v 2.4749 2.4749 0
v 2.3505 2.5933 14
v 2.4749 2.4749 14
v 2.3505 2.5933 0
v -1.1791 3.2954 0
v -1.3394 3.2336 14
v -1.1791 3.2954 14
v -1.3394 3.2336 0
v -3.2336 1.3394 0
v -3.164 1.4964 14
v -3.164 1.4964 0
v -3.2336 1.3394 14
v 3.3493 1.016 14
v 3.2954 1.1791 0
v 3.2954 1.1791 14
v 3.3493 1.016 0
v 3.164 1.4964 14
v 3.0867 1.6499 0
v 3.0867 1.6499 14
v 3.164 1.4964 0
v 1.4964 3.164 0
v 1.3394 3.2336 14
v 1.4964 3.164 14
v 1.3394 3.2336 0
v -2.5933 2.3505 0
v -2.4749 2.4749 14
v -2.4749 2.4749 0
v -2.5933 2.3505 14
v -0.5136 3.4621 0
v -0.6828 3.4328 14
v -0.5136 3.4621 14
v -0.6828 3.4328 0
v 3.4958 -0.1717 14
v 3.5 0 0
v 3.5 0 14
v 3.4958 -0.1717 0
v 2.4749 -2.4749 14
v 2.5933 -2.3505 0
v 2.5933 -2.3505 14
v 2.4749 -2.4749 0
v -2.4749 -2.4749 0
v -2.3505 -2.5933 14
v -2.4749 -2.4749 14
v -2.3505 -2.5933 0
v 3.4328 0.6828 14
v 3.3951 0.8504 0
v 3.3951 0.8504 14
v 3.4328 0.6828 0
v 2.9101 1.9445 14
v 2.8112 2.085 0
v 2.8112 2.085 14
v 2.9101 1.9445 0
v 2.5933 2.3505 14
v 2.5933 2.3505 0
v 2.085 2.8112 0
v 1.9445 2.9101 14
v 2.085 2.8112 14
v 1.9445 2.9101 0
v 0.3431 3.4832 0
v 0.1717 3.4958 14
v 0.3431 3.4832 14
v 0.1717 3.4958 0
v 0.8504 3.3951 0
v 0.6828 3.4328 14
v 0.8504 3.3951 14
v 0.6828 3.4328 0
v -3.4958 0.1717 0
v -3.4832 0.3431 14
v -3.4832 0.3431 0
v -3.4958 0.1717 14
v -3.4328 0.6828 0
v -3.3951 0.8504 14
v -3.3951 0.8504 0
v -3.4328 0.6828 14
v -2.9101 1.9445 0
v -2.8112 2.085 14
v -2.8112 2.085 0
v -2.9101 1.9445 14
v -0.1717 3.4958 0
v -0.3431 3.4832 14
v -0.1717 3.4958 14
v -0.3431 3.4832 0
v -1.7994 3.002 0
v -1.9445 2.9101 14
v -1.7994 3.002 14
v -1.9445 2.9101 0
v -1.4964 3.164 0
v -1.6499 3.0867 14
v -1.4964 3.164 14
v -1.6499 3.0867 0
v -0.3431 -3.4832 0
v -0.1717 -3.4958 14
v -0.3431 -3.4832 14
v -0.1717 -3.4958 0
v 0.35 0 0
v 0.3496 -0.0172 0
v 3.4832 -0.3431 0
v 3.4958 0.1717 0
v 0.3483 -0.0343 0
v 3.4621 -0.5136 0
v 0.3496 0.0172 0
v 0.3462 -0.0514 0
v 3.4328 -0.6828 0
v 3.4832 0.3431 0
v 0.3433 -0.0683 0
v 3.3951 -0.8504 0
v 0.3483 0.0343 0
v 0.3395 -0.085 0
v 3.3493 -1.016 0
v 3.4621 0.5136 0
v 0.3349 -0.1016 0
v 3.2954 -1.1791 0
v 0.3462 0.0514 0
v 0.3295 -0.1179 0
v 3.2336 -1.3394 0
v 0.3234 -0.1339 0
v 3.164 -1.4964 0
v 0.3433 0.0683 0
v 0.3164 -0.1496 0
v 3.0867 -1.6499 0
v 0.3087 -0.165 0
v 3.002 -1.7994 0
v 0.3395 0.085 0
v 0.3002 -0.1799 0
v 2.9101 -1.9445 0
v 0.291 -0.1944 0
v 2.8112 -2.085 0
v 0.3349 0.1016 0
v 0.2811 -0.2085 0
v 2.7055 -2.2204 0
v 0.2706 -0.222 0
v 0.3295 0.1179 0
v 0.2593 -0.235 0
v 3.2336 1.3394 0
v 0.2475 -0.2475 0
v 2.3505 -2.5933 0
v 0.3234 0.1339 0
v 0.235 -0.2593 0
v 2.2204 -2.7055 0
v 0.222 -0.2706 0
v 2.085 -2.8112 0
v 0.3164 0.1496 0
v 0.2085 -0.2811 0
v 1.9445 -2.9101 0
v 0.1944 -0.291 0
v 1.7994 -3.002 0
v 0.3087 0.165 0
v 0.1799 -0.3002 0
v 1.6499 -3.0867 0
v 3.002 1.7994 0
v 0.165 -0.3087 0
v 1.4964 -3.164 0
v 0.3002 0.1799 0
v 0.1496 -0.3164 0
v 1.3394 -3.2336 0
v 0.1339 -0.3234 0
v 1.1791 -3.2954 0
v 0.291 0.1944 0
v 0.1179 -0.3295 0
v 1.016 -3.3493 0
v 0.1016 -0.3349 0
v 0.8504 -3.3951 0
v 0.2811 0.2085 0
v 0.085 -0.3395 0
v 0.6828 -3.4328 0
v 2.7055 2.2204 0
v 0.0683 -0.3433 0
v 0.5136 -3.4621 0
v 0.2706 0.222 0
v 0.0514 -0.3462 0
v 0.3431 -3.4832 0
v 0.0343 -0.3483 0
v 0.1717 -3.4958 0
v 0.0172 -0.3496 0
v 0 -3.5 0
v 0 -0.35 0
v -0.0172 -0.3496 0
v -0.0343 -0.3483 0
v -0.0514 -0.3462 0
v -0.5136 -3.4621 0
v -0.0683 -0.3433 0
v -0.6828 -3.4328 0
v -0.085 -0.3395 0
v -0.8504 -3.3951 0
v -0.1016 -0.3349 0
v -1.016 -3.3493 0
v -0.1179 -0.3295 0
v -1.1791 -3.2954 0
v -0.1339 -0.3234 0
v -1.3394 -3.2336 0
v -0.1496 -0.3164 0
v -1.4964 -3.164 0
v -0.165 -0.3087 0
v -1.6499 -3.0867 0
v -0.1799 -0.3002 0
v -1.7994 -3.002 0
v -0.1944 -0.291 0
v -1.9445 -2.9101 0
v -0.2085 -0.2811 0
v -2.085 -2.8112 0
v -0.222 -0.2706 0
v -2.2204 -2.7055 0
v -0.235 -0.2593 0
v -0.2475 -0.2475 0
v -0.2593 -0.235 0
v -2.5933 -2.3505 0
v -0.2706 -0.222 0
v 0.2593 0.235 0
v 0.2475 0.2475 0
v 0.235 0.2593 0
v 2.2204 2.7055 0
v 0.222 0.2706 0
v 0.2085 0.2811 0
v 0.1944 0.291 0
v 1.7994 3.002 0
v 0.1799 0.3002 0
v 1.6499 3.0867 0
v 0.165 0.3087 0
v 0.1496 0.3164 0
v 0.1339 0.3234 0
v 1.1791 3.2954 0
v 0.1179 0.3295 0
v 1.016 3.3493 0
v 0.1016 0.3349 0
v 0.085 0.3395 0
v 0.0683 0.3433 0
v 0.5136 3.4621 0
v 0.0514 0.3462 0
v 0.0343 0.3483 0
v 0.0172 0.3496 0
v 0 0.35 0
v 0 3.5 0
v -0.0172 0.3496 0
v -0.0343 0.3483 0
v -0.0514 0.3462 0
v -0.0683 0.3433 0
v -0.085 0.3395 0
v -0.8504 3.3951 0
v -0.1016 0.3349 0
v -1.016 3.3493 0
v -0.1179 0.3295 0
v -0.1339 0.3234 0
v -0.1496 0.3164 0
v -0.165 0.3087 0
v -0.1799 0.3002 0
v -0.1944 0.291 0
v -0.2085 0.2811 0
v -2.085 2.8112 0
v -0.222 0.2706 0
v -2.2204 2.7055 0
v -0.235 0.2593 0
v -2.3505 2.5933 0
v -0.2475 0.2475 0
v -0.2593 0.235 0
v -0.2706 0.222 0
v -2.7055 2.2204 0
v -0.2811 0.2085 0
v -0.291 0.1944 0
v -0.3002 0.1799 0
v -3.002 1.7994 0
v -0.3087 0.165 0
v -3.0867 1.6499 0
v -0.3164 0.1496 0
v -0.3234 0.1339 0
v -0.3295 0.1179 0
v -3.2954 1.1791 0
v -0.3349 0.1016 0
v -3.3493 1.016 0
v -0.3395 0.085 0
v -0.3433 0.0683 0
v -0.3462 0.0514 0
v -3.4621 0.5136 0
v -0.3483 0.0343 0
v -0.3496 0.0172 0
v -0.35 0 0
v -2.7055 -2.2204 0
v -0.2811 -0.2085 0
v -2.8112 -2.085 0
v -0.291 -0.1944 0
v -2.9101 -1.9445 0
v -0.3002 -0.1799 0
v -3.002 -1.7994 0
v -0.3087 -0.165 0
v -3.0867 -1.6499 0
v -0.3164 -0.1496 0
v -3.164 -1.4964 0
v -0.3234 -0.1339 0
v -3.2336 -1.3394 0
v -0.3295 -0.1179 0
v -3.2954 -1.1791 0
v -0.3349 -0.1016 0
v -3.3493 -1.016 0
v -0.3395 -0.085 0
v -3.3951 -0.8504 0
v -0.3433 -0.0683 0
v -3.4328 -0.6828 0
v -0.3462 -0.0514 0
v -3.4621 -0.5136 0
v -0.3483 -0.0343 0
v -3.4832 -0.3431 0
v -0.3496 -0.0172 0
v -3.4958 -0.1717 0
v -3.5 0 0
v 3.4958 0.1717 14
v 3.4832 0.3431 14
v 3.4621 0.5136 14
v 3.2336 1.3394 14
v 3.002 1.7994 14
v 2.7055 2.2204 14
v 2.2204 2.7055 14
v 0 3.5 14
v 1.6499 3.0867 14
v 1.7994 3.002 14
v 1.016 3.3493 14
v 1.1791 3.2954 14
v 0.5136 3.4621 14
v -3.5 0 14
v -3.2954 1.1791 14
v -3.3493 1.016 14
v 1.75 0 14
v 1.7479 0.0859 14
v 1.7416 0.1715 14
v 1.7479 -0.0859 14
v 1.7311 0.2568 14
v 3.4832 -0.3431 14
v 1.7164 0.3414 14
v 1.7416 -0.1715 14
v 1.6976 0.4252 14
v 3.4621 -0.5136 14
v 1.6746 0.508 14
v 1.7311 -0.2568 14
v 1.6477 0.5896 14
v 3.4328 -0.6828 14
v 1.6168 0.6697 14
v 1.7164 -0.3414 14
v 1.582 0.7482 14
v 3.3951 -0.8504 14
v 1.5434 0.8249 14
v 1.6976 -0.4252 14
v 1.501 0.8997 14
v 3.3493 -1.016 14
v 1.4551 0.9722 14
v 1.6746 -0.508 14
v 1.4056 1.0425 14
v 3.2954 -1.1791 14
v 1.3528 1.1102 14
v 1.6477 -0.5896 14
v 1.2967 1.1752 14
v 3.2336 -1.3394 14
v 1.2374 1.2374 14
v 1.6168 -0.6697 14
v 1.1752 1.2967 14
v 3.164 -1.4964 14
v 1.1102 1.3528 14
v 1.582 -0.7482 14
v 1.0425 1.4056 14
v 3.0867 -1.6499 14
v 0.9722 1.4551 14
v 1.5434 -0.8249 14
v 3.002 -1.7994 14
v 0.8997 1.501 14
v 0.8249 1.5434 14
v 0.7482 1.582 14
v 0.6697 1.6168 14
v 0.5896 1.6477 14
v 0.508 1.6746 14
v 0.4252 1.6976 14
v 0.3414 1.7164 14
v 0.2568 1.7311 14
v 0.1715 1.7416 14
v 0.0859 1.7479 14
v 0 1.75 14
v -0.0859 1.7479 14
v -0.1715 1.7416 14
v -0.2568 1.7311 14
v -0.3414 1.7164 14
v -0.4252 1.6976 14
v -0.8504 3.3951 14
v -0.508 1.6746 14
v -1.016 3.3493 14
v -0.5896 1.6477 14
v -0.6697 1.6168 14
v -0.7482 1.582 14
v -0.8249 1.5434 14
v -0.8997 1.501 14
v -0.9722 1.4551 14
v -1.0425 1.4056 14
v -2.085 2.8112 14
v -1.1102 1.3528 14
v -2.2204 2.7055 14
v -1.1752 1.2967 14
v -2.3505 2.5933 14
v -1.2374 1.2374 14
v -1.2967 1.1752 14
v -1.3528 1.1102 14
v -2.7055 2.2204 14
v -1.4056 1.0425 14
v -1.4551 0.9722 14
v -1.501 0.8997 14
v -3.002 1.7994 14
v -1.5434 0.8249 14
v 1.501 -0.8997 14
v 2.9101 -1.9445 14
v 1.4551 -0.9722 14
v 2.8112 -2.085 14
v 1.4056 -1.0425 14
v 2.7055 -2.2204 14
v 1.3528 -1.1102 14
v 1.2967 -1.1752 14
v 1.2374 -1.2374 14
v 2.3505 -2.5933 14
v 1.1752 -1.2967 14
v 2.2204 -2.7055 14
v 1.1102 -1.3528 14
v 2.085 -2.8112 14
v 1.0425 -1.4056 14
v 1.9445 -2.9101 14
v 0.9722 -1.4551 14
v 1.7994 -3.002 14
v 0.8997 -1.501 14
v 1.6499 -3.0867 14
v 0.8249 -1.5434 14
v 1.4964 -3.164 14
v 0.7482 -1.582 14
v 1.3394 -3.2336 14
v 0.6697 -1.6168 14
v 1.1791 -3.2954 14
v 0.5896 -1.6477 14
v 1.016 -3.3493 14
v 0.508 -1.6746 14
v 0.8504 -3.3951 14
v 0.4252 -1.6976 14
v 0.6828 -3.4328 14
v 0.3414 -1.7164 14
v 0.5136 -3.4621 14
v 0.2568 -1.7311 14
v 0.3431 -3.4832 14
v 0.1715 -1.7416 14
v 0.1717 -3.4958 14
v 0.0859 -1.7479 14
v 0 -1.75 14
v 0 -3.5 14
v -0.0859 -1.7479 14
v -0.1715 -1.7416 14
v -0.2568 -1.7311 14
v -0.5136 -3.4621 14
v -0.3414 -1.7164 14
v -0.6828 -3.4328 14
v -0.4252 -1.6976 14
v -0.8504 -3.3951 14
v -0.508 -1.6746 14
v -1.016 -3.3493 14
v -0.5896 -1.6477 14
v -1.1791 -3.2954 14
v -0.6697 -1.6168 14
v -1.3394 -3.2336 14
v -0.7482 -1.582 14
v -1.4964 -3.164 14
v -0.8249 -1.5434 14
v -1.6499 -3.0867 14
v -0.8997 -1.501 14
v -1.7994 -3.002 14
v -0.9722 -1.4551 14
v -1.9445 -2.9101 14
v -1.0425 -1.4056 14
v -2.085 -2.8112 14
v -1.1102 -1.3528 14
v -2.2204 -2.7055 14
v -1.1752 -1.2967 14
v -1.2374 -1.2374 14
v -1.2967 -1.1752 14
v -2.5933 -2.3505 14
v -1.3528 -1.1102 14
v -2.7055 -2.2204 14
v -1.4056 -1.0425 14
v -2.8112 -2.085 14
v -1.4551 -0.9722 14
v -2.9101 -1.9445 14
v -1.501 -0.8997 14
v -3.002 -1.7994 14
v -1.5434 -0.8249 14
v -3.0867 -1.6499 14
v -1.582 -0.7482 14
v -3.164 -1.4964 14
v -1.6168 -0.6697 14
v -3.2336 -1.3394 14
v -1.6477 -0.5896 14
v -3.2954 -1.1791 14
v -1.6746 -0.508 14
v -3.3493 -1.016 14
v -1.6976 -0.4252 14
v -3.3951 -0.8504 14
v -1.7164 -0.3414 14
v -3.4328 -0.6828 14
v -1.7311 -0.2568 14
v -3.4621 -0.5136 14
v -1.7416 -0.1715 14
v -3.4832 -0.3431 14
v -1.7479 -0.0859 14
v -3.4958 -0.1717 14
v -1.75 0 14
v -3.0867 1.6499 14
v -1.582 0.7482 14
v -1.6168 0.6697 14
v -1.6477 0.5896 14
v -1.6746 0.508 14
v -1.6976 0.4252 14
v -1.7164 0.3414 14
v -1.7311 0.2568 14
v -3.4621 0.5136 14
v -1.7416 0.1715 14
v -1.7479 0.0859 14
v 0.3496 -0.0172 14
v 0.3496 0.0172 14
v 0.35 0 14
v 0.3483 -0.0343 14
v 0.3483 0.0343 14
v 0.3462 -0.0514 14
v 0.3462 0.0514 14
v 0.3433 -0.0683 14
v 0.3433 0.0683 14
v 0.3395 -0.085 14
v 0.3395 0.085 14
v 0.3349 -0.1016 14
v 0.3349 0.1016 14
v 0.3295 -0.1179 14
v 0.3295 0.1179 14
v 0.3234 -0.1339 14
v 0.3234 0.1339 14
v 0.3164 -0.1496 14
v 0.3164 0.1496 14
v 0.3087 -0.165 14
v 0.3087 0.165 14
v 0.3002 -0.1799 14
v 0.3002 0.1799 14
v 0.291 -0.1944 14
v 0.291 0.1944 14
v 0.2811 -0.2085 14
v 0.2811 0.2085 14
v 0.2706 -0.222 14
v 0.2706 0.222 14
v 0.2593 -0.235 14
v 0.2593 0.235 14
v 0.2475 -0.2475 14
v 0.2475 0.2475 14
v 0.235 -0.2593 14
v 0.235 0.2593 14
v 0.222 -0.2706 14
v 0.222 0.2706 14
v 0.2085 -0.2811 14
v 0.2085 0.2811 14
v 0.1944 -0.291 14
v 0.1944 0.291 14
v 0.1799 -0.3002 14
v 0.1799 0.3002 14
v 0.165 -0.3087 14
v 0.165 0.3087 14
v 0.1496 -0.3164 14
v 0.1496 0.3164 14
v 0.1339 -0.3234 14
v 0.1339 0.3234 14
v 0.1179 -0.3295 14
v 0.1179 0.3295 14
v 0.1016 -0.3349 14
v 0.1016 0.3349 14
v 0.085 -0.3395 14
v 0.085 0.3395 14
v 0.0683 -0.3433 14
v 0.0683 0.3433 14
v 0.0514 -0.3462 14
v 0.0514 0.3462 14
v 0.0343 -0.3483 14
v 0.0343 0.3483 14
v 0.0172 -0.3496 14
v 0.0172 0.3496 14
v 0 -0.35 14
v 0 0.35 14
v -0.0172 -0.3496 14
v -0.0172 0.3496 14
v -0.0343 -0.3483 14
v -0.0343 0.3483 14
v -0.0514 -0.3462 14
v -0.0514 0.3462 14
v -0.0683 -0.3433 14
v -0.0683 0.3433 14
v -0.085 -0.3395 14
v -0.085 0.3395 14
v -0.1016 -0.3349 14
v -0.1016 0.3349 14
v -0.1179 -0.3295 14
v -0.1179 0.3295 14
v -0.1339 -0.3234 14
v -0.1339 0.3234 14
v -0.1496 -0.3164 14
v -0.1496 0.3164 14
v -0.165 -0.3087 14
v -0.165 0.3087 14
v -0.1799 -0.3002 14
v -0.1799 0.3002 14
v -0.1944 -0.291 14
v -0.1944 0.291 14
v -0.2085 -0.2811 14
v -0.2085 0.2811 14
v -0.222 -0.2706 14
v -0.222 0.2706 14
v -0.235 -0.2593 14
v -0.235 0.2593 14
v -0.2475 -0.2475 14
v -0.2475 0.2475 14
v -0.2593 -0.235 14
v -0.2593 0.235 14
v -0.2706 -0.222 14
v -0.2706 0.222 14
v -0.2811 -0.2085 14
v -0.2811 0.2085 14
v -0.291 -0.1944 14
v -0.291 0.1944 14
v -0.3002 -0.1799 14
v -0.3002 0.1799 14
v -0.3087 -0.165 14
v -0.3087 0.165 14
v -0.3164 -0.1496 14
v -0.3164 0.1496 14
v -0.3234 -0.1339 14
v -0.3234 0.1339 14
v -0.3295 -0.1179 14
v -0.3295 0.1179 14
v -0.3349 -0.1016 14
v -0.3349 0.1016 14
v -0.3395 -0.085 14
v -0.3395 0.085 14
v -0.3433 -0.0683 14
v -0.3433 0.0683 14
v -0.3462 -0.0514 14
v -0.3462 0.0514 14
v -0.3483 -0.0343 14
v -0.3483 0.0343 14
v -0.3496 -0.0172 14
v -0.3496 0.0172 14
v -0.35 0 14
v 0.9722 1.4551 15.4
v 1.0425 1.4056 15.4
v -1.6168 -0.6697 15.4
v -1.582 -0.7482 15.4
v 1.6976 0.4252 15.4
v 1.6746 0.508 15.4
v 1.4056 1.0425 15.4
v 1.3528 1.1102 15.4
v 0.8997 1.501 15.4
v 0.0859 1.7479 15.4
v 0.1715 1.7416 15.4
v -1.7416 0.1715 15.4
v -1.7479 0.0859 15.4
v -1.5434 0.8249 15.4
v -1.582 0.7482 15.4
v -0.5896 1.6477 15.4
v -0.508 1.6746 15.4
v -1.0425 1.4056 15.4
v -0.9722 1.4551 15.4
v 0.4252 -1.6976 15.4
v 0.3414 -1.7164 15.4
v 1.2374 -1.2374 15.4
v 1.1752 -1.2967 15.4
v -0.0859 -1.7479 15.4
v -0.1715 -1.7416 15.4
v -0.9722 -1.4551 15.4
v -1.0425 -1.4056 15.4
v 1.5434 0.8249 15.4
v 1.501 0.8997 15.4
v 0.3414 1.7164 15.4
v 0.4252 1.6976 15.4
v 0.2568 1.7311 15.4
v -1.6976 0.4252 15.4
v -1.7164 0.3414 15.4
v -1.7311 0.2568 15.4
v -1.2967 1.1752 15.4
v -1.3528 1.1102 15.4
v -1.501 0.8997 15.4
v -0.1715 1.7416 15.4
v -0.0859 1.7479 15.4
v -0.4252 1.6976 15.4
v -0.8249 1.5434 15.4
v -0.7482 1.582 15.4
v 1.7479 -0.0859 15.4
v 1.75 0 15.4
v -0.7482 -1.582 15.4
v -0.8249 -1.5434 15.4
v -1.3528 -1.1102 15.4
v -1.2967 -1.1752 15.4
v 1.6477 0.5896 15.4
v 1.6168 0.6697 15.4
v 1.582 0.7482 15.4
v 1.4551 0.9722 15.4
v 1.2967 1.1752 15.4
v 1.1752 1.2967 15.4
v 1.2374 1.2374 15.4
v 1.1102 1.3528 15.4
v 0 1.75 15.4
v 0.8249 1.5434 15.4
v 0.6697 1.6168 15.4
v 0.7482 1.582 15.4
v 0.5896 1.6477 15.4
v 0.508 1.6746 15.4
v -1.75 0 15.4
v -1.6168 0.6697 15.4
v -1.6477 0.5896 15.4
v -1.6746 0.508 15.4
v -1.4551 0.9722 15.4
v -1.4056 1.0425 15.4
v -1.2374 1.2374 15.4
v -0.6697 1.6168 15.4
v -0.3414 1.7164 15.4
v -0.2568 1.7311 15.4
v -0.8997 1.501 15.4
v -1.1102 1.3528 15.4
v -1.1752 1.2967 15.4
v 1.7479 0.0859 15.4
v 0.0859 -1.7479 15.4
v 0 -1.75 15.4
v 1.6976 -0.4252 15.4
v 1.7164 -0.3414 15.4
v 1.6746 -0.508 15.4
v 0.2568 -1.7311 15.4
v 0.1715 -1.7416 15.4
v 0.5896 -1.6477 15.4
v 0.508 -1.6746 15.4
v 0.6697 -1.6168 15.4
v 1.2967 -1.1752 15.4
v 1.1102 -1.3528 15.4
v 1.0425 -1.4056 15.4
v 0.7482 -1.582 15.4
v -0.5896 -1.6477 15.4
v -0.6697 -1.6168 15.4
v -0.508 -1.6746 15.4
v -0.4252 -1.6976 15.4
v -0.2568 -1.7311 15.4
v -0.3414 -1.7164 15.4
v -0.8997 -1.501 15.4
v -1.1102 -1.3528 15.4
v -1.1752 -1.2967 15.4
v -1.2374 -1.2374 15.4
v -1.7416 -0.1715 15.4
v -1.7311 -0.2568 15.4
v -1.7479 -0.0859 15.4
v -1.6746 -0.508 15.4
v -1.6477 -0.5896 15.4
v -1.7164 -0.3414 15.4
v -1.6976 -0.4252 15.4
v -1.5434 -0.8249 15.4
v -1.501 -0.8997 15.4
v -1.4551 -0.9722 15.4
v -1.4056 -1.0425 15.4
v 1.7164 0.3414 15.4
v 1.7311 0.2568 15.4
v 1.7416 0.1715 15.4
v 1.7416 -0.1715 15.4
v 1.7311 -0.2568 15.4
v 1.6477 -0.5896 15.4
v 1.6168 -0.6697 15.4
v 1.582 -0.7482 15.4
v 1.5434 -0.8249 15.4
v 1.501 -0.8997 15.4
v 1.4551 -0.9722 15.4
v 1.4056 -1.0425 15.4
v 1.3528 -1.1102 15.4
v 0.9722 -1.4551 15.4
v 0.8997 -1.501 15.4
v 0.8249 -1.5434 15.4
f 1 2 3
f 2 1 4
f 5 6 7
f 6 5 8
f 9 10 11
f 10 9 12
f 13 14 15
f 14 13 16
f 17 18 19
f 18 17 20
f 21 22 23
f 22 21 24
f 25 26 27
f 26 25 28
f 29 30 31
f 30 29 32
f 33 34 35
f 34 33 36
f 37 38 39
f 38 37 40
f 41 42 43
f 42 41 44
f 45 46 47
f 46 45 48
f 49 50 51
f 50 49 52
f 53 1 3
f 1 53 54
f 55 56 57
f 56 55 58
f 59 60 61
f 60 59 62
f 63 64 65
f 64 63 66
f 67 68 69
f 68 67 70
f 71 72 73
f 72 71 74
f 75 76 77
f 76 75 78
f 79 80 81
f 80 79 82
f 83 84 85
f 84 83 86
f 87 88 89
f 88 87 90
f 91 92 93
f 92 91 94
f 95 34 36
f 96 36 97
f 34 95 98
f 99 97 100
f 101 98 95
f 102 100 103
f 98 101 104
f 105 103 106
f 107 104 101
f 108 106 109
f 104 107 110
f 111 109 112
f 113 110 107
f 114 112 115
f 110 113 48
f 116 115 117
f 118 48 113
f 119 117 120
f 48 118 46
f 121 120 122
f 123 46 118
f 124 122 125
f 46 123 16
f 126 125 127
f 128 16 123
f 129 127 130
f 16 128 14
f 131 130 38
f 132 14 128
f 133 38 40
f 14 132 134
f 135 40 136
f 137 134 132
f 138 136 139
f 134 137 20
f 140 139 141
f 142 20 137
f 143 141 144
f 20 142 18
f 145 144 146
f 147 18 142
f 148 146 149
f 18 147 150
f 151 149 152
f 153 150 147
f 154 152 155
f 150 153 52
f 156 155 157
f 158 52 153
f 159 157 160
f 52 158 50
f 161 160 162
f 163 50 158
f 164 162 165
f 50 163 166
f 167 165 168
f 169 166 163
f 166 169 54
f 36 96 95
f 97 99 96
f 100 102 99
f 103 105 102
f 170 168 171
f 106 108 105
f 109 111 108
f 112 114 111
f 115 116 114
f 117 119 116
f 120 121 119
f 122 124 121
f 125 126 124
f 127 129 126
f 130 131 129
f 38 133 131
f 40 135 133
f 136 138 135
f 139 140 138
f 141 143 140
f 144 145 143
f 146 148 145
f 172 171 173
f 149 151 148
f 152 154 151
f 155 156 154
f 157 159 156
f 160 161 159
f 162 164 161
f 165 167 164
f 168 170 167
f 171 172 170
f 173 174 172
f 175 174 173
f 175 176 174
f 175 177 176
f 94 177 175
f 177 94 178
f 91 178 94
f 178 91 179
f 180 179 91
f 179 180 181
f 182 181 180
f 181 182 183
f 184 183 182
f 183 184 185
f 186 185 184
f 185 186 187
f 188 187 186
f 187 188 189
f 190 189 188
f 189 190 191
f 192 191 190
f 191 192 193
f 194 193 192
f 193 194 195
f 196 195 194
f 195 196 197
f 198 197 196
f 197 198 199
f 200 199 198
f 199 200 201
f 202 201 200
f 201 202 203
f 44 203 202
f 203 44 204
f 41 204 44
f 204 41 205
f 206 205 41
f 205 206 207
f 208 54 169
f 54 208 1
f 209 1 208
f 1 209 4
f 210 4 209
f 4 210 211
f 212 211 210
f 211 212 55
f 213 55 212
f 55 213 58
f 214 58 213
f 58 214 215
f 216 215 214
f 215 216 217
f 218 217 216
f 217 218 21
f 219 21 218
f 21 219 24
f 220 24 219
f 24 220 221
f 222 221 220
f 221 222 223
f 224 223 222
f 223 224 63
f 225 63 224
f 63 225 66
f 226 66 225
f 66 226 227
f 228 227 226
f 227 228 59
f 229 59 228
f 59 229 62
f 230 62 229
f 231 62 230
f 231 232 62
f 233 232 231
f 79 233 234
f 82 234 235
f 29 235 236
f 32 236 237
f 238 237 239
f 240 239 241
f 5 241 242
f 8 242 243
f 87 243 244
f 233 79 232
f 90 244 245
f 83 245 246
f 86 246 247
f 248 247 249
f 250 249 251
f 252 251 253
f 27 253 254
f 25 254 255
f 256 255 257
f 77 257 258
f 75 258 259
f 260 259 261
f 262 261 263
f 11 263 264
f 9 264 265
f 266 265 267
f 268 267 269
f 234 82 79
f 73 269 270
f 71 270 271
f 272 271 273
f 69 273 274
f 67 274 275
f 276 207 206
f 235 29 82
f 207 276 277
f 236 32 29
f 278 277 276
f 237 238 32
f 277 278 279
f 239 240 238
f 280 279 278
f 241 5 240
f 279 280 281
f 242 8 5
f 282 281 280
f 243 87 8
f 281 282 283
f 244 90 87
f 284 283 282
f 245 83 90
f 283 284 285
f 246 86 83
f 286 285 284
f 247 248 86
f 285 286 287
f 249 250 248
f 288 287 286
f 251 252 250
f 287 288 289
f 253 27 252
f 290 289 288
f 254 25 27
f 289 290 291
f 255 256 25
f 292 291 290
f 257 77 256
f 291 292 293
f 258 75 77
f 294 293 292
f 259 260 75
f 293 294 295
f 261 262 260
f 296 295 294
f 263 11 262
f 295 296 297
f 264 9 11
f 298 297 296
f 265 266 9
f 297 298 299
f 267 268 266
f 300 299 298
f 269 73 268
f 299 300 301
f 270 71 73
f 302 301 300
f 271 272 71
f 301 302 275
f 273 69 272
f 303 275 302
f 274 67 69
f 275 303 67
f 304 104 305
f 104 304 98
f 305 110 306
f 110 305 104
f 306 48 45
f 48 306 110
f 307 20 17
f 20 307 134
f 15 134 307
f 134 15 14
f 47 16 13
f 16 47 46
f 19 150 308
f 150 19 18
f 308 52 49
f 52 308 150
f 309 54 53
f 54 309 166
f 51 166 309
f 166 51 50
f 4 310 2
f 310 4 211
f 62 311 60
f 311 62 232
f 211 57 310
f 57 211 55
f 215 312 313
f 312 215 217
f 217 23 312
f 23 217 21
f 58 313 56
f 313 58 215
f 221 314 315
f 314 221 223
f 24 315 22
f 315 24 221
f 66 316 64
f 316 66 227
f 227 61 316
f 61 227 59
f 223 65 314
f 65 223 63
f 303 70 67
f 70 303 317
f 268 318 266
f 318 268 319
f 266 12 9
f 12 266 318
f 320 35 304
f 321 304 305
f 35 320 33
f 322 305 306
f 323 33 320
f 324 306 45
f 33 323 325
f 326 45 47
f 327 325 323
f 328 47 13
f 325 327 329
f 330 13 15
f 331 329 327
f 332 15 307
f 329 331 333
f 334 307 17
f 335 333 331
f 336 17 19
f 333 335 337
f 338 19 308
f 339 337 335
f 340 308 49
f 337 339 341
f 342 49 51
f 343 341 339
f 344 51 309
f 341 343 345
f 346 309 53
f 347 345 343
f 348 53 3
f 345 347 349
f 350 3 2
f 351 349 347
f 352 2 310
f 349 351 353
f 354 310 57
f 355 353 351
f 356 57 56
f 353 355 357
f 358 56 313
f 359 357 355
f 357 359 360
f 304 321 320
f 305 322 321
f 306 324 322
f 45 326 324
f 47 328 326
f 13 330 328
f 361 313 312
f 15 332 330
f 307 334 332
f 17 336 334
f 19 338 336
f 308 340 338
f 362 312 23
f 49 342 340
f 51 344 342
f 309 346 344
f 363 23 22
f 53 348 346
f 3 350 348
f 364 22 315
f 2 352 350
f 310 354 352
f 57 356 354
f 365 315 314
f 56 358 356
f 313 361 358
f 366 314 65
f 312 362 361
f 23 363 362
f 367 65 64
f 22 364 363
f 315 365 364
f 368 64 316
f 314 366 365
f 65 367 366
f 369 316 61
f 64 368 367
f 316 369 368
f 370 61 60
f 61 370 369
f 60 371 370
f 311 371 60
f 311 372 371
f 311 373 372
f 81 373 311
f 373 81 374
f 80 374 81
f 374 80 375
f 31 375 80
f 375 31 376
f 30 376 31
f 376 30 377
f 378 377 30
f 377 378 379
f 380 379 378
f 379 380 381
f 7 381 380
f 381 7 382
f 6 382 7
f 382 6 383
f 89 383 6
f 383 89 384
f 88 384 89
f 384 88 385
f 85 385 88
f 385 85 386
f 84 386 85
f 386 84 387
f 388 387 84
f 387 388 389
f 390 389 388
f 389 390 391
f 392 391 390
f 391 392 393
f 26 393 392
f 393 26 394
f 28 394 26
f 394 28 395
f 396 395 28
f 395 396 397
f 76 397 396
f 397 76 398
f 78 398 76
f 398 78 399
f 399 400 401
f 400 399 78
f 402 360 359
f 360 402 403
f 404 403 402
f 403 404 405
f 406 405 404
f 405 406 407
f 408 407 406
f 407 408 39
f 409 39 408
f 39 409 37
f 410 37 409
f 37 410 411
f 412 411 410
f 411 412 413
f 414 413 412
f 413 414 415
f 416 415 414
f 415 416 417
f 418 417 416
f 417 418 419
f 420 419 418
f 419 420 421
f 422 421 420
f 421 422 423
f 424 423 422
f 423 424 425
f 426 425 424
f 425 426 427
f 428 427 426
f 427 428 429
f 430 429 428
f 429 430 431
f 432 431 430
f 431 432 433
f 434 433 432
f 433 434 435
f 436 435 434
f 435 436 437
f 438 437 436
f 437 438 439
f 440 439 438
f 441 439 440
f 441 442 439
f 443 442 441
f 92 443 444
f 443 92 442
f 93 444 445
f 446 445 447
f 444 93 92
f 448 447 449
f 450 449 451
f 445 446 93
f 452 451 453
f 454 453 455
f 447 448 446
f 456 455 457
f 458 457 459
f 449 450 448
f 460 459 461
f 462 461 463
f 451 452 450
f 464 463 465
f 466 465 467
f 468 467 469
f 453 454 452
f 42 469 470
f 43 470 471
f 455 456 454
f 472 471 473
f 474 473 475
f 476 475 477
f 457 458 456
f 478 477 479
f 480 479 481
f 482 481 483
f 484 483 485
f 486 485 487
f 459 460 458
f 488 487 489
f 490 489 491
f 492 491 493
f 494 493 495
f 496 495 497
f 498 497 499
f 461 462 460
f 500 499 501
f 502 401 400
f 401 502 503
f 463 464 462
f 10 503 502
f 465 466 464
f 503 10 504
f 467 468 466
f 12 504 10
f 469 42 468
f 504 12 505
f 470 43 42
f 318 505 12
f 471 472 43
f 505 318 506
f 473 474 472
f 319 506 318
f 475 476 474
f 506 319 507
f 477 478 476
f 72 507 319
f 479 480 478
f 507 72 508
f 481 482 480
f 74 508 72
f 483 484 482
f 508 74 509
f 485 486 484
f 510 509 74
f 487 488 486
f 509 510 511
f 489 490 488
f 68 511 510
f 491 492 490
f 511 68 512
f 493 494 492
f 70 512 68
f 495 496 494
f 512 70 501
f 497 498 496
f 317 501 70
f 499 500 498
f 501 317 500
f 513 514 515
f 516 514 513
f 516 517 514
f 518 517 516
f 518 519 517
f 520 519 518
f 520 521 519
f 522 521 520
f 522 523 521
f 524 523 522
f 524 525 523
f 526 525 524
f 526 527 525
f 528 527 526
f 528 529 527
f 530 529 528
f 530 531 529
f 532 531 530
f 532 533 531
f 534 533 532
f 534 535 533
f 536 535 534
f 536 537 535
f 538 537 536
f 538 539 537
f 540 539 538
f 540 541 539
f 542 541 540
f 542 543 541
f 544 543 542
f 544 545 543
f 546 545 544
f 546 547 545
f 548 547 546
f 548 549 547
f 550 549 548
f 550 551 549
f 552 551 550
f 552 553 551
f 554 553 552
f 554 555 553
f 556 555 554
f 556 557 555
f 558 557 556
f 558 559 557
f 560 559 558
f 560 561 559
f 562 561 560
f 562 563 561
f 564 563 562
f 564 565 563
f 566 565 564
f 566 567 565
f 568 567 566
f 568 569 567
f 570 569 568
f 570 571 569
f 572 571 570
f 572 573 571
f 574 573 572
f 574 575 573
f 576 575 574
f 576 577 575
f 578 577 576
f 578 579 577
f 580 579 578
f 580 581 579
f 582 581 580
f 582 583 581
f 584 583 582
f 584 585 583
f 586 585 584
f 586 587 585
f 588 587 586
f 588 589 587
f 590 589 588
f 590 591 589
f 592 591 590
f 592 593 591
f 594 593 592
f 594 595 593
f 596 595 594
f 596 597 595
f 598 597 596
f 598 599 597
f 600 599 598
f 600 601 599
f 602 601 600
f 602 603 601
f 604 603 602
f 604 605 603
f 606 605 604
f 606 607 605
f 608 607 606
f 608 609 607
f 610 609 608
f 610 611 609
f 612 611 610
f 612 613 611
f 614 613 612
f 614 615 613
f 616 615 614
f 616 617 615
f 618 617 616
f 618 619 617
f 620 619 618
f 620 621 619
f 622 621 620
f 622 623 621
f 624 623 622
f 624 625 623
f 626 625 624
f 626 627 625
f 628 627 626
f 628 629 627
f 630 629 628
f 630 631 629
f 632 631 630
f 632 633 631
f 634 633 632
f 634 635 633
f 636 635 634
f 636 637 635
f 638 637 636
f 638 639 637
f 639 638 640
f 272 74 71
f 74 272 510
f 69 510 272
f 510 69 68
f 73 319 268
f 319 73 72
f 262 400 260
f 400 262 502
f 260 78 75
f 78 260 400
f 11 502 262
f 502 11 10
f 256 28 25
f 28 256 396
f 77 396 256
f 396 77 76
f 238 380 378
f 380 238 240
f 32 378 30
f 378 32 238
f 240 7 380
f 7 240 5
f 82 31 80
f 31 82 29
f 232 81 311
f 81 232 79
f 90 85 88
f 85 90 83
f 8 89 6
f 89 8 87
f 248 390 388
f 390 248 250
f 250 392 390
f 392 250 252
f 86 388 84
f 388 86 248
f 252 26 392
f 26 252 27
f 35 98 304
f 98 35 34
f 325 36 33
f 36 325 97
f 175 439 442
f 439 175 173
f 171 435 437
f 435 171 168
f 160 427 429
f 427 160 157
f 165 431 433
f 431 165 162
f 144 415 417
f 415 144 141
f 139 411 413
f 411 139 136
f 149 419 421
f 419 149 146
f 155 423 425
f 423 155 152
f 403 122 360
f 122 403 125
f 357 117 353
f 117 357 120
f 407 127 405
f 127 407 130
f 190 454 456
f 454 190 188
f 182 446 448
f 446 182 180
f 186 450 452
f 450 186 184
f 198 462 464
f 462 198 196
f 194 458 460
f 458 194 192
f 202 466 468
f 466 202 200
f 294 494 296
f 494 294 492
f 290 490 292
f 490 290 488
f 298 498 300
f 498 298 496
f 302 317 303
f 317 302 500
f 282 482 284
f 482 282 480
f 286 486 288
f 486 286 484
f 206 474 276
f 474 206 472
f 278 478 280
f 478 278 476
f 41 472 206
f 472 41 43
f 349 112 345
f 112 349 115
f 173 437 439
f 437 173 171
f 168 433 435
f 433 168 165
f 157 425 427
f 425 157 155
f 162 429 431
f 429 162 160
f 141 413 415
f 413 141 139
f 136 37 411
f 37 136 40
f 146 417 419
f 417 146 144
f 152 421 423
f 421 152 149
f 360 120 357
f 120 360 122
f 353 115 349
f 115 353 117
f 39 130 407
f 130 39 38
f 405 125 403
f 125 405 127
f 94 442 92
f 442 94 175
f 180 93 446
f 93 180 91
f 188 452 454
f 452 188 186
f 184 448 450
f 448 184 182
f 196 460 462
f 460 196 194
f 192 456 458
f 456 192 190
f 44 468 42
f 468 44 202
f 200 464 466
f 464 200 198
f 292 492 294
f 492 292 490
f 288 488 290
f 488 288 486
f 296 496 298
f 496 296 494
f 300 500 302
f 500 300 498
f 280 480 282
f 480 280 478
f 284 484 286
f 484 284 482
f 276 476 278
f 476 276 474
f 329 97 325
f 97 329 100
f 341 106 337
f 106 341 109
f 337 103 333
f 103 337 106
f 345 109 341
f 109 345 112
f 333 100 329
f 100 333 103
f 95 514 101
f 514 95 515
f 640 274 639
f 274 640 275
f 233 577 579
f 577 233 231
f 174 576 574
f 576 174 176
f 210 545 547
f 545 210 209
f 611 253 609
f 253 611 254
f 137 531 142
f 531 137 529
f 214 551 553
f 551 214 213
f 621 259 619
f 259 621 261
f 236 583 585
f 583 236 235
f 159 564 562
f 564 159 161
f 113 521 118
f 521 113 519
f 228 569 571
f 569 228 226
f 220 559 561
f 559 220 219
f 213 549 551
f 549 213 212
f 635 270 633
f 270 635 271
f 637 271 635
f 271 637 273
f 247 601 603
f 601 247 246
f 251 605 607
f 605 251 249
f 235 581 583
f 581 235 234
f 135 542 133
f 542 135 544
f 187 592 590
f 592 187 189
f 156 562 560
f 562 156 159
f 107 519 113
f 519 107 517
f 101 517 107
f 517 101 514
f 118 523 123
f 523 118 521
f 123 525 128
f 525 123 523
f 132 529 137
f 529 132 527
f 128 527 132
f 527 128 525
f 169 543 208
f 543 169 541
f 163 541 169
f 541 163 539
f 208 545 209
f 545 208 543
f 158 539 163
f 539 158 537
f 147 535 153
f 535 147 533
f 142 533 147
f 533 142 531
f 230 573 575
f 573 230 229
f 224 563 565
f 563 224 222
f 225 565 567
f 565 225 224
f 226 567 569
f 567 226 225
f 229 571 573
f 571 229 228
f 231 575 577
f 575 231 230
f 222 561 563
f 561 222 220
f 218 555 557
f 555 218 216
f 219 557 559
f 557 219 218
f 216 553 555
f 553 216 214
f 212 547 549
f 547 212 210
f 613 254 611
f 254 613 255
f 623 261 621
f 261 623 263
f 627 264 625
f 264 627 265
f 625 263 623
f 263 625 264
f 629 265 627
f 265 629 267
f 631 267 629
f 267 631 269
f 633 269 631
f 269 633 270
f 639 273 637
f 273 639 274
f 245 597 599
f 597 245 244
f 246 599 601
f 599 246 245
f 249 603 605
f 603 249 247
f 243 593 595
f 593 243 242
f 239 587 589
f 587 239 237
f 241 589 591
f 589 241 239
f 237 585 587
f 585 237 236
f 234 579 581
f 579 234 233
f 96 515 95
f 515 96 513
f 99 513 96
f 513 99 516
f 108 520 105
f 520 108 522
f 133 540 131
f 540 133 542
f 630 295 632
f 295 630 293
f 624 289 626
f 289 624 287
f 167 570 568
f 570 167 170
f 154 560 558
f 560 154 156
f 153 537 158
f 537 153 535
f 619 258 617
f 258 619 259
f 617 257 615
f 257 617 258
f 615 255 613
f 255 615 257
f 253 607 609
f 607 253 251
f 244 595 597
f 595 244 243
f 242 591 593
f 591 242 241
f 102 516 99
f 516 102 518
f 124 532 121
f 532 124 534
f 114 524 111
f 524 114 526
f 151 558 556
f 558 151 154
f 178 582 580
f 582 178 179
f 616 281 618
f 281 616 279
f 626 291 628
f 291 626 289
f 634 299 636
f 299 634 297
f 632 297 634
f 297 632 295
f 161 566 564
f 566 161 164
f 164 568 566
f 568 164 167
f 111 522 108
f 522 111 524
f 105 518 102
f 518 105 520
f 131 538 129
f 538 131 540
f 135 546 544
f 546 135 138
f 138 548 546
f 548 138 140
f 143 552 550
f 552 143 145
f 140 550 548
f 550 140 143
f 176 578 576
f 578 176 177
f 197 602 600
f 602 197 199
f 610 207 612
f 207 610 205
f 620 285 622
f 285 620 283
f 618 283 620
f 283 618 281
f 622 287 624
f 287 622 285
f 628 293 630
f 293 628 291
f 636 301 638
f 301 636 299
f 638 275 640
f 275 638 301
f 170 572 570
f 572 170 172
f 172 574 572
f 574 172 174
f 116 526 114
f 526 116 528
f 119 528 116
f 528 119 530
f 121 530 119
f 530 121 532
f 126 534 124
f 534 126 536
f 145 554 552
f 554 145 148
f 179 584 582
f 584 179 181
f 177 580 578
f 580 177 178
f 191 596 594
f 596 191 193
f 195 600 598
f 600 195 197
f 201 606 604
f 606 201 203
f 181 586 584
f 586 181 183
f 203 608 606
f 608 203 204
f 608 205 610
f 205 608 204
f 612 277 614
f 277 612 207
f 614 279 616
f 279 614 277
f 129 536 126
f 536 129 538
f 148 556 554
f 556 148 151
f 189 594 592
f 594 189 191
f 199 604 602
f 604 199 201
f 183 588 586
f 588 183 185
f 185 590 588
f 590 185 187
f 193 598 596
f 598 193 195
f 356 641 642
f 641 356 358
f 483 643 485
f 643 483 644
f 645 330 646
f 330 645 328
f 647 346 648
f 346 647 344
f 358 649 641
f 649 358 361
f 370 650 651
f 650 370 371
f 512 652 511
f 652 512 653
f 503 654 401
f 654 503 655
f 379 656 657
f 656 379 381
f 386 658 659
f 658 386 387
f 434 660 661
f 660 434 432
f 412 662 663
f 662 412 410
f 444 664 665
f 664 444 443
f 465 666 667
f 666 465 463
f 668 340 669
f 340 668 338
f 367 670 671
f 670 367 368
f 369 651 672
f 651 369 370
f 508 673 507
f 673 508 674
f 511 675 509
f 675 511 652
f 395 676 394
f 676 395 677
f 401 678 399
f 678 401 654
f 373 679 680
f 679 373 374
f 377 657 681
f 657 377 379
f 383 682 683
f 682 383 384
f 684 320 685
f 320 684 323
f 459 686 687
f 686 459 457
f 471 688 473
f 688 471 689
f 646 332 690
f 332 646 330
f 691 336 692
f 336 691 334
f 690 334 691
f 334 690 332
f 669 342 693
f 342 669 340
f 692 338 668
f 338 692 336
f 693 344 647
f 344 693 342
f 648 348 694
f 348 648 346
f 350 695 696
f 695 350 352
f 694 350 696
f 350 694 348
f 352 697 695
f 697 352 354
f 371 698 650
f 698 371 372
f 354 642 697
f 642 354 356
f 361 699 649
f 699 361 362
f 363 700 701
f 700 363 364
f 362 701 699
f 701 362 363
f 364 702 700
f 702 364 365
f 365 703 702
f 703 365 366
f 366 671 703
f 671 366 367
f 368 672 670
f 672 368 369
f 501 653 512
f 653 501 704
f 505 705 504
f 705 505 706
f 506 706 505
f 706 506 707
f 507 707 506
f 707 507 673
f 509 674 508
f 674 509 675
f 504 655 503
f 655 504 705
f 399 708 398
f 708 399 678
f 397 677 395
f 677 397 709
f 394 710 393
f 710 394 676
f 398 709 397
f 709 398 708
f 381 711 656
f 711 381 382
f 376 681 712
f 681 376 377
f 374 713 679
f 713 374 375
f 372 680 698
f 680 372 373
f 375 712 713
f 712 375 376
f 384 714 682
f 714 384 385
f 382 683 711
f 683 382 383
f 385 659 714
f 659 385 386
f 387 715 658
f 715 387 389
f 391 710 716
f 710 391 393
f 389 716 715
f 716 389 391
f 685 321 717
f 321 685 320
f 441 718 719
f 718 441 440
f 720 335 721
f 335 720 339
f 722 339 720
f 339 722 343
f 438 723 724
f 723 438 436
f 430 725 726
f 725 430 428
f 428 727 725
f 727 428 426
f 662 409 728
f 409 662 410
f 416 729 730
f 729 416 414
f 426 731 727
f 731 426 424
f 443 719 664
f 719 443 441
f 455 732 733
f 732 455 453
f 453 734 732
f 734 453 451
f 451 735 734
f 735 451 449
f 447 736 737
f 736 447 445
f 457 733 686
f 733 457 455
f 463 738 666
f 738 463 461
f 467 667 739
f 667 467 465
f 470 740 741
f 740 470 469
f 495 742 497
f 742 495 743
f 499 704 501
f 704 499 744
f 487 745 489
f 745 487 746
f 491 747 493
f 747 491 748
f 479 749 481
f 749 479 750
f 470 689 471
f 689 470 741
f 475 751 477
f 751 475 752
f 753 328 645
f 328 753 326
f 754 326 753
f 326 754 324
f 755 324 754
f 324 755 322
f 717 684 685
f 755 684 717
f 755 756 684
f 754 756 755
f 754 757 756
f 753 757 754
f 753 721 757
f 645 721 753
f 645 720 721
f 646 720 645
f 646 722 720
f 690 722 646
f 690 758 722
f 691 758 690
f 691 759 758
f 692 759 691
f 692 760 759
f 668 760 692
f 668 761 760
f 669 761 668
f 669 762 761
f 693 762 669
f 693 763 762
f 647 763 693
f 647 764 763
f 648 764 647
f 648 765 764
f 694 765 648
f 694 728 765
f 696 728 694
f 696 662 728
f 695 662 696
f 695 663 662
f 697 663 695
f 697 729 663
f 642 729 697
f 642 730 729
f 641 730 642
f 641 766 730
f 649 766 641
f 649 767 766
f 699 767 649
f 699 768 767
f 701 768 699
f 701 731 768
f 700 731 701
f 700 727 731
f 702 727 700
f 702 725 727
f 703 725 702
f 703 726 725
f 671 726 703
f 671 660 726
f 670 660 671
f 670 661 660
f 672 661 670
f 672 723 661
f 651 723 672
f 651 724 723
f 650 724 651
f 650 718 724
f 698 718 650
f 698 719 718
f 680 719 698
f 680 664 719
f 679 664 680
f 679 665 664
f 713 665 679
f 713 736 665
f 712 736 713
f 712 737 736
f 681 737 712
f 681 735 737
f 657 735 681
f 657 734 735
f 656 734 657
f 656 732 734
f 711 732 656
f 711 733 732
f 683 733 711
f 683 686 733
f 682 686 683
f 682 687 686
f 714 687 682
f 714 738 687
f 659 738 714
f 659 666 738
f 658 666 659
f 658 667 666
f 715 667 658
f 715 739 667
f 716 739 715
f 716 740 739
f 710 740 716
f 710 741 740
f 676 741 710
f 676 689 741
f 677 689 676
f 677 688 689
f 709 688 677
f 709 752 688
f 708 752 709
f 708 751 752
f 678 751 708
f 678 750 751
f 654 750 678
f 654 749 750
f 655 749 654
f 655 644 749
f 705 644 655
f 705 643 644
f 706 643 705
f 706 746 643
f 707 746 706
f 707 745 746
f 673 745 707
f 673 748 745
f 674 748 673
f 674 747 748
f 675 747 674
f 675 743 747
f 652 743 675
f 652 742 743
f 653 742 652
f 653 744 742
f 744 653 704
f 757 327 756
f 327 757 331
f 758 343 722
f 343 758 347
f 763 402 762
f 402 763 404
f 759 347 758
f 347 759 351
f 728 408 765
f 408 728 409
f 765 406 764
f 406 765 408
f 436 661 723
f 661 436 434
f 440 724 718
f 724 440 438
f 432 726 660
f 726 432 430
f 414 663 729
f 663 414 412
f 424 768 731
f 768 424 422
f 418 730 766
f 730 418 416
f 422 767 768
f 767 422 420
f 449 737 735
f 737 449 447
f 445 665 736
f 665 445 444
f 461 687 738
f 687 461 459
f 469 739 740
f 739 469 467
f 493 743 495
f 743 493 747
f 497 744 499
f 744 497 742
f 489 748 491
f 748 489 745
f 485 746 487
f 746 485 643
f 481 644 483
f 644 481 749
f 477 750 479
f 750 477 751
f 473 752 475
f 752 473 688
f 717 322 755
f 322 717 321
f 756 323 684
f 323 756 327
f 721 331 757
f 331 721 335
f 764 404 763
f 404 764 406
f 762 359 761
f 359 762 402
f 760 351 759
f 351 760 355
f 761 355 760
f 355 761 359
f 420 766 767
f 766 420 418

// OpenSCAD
// Generated by SolidPython 1.1.3 on 2023-04-08 02:27:49
$fn =128;


union() {
	difference() {
		cylinder(h = 14, r = 3.5000000000);
		cylinder(h = 14, r = 0.3500000000);
	}
	translate(v = [0, 0, 14]) {
		cylinder(h = 1.4000000000, r = 1.7500000000);
	}
}
